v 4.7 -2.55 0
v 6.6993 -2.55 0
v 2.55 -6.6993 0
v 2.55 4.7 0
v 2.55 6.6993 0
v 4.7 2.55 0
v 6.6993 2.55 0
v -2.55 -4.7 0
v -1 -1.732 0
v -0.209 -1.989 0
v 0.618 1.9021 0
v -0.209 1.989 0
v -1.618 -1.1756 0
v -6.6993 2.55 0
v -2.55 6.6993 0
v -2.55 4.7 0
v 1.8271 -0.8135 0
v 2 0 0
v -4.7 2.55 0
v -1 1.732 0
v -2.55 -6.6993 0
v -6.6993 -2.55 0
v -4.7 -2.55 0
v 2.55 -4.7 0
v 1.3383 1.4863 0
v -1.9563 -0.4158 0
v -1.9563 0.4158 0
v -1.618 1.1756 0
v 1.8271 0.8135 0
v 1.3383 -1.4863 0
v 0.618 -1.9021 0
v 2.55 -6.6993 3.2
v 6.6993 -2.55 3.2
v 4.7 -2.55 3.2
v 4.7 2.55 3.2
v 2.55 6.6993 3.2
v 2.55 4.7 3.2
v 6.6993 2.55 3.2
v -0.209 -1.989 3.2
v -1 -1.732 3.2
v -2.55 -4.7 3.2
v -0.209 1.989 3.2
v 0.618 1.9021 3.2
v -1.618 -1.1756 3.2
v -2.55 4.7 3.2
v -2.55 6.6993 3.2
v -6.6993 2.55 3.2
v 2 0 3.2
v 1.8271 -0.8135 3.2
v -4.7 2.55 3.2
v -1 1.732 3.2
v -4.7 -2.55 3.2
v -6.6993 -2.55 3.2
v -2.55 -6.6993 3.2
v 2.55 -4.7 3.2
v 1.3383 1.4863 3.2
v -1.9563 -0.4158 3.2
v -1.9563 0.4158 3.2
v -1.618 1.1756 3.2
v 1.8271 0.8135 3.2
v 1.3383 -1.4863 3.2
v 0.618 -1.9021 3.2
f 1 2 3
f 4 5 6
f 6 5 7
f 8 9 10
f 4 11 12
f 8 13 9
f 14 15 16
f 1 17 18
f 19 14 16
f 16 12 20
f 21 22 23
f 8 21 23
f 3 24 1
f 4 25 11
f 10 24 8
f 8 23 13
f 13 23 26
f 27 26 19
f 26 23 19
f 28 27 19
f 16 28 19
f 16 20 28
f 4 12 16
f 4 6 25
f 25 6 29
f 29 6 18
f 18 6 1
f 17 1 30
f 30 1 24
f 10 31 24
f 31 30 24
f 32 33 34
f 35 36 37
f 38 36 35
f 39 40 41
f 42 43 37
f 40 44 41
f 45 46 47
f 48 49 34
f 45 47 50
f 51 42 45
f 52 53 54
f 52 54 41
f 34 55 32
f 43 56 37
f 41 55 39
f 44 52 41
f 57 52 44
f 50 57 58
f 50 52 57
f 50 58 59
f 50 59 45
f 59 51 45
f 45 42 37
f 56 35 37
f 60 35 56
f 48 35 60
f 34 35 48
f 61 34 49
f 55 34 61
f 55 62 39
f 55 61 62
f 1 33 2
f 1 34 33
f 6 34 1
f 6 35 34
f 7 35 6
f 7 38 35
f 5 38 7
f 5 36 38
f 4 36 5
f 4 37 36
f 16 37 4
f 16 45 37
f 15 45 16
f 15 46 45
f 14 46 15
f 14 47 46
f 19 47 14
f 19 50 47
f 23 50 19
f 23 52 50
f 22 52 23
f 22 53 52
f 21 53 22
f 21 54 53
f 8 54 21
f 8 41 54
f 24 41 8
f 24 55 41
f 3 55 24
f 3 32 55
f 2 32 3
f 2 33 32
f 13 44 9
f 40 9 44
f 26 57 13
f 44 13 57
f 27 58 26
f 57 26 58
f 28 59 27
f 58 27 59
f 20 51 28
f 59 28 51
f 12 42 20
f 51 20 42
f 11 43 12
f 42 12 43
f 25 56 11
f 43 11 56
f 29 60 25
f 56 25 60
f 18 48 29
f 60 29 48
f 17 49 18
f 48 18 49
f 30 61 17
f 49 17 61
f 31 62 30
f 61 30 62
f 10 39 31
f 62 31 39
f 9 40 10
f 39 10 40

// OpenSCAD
// Used a 16mm long screw

module squares() {
    square(9.4, center=true);
    translate([4.625, 4.625])
        square(4.15, center=true);
    translate([4.625, -4.625])
        square(4.15, center=true);
    translate([-4.625, 4.625])
        square(4.15, center=true);
    translate([-4.625, -4.625])
        square(4.15, center=true);
}

module squares_cut() {
    // Subtract out triangles for holes
    difference() {
        squares();
        
        translate([6.7, 6.7])
            rotate([0,0,45])
                square(5.87, center=true);
        translate([6.7, -6.7])
            rotate([0,0,45])
                square(5.87, center=true);
        translate([-6.7, 6.7])
            rotate([0,0,45])
                square(5.87, center=true);
        translate([-6.7, -6.7])
            rotate([0,0,45])
                square(5.87, center=true);
    }
}

module axel_holder_2d() {
    difference() {
        squares_cut();
        circle(r=2, $fn=15);
    }
}

module axel_holder() {
    linear_extrude(3.2) {
        axel_holder_2d();
    }
}

axel_holder();
